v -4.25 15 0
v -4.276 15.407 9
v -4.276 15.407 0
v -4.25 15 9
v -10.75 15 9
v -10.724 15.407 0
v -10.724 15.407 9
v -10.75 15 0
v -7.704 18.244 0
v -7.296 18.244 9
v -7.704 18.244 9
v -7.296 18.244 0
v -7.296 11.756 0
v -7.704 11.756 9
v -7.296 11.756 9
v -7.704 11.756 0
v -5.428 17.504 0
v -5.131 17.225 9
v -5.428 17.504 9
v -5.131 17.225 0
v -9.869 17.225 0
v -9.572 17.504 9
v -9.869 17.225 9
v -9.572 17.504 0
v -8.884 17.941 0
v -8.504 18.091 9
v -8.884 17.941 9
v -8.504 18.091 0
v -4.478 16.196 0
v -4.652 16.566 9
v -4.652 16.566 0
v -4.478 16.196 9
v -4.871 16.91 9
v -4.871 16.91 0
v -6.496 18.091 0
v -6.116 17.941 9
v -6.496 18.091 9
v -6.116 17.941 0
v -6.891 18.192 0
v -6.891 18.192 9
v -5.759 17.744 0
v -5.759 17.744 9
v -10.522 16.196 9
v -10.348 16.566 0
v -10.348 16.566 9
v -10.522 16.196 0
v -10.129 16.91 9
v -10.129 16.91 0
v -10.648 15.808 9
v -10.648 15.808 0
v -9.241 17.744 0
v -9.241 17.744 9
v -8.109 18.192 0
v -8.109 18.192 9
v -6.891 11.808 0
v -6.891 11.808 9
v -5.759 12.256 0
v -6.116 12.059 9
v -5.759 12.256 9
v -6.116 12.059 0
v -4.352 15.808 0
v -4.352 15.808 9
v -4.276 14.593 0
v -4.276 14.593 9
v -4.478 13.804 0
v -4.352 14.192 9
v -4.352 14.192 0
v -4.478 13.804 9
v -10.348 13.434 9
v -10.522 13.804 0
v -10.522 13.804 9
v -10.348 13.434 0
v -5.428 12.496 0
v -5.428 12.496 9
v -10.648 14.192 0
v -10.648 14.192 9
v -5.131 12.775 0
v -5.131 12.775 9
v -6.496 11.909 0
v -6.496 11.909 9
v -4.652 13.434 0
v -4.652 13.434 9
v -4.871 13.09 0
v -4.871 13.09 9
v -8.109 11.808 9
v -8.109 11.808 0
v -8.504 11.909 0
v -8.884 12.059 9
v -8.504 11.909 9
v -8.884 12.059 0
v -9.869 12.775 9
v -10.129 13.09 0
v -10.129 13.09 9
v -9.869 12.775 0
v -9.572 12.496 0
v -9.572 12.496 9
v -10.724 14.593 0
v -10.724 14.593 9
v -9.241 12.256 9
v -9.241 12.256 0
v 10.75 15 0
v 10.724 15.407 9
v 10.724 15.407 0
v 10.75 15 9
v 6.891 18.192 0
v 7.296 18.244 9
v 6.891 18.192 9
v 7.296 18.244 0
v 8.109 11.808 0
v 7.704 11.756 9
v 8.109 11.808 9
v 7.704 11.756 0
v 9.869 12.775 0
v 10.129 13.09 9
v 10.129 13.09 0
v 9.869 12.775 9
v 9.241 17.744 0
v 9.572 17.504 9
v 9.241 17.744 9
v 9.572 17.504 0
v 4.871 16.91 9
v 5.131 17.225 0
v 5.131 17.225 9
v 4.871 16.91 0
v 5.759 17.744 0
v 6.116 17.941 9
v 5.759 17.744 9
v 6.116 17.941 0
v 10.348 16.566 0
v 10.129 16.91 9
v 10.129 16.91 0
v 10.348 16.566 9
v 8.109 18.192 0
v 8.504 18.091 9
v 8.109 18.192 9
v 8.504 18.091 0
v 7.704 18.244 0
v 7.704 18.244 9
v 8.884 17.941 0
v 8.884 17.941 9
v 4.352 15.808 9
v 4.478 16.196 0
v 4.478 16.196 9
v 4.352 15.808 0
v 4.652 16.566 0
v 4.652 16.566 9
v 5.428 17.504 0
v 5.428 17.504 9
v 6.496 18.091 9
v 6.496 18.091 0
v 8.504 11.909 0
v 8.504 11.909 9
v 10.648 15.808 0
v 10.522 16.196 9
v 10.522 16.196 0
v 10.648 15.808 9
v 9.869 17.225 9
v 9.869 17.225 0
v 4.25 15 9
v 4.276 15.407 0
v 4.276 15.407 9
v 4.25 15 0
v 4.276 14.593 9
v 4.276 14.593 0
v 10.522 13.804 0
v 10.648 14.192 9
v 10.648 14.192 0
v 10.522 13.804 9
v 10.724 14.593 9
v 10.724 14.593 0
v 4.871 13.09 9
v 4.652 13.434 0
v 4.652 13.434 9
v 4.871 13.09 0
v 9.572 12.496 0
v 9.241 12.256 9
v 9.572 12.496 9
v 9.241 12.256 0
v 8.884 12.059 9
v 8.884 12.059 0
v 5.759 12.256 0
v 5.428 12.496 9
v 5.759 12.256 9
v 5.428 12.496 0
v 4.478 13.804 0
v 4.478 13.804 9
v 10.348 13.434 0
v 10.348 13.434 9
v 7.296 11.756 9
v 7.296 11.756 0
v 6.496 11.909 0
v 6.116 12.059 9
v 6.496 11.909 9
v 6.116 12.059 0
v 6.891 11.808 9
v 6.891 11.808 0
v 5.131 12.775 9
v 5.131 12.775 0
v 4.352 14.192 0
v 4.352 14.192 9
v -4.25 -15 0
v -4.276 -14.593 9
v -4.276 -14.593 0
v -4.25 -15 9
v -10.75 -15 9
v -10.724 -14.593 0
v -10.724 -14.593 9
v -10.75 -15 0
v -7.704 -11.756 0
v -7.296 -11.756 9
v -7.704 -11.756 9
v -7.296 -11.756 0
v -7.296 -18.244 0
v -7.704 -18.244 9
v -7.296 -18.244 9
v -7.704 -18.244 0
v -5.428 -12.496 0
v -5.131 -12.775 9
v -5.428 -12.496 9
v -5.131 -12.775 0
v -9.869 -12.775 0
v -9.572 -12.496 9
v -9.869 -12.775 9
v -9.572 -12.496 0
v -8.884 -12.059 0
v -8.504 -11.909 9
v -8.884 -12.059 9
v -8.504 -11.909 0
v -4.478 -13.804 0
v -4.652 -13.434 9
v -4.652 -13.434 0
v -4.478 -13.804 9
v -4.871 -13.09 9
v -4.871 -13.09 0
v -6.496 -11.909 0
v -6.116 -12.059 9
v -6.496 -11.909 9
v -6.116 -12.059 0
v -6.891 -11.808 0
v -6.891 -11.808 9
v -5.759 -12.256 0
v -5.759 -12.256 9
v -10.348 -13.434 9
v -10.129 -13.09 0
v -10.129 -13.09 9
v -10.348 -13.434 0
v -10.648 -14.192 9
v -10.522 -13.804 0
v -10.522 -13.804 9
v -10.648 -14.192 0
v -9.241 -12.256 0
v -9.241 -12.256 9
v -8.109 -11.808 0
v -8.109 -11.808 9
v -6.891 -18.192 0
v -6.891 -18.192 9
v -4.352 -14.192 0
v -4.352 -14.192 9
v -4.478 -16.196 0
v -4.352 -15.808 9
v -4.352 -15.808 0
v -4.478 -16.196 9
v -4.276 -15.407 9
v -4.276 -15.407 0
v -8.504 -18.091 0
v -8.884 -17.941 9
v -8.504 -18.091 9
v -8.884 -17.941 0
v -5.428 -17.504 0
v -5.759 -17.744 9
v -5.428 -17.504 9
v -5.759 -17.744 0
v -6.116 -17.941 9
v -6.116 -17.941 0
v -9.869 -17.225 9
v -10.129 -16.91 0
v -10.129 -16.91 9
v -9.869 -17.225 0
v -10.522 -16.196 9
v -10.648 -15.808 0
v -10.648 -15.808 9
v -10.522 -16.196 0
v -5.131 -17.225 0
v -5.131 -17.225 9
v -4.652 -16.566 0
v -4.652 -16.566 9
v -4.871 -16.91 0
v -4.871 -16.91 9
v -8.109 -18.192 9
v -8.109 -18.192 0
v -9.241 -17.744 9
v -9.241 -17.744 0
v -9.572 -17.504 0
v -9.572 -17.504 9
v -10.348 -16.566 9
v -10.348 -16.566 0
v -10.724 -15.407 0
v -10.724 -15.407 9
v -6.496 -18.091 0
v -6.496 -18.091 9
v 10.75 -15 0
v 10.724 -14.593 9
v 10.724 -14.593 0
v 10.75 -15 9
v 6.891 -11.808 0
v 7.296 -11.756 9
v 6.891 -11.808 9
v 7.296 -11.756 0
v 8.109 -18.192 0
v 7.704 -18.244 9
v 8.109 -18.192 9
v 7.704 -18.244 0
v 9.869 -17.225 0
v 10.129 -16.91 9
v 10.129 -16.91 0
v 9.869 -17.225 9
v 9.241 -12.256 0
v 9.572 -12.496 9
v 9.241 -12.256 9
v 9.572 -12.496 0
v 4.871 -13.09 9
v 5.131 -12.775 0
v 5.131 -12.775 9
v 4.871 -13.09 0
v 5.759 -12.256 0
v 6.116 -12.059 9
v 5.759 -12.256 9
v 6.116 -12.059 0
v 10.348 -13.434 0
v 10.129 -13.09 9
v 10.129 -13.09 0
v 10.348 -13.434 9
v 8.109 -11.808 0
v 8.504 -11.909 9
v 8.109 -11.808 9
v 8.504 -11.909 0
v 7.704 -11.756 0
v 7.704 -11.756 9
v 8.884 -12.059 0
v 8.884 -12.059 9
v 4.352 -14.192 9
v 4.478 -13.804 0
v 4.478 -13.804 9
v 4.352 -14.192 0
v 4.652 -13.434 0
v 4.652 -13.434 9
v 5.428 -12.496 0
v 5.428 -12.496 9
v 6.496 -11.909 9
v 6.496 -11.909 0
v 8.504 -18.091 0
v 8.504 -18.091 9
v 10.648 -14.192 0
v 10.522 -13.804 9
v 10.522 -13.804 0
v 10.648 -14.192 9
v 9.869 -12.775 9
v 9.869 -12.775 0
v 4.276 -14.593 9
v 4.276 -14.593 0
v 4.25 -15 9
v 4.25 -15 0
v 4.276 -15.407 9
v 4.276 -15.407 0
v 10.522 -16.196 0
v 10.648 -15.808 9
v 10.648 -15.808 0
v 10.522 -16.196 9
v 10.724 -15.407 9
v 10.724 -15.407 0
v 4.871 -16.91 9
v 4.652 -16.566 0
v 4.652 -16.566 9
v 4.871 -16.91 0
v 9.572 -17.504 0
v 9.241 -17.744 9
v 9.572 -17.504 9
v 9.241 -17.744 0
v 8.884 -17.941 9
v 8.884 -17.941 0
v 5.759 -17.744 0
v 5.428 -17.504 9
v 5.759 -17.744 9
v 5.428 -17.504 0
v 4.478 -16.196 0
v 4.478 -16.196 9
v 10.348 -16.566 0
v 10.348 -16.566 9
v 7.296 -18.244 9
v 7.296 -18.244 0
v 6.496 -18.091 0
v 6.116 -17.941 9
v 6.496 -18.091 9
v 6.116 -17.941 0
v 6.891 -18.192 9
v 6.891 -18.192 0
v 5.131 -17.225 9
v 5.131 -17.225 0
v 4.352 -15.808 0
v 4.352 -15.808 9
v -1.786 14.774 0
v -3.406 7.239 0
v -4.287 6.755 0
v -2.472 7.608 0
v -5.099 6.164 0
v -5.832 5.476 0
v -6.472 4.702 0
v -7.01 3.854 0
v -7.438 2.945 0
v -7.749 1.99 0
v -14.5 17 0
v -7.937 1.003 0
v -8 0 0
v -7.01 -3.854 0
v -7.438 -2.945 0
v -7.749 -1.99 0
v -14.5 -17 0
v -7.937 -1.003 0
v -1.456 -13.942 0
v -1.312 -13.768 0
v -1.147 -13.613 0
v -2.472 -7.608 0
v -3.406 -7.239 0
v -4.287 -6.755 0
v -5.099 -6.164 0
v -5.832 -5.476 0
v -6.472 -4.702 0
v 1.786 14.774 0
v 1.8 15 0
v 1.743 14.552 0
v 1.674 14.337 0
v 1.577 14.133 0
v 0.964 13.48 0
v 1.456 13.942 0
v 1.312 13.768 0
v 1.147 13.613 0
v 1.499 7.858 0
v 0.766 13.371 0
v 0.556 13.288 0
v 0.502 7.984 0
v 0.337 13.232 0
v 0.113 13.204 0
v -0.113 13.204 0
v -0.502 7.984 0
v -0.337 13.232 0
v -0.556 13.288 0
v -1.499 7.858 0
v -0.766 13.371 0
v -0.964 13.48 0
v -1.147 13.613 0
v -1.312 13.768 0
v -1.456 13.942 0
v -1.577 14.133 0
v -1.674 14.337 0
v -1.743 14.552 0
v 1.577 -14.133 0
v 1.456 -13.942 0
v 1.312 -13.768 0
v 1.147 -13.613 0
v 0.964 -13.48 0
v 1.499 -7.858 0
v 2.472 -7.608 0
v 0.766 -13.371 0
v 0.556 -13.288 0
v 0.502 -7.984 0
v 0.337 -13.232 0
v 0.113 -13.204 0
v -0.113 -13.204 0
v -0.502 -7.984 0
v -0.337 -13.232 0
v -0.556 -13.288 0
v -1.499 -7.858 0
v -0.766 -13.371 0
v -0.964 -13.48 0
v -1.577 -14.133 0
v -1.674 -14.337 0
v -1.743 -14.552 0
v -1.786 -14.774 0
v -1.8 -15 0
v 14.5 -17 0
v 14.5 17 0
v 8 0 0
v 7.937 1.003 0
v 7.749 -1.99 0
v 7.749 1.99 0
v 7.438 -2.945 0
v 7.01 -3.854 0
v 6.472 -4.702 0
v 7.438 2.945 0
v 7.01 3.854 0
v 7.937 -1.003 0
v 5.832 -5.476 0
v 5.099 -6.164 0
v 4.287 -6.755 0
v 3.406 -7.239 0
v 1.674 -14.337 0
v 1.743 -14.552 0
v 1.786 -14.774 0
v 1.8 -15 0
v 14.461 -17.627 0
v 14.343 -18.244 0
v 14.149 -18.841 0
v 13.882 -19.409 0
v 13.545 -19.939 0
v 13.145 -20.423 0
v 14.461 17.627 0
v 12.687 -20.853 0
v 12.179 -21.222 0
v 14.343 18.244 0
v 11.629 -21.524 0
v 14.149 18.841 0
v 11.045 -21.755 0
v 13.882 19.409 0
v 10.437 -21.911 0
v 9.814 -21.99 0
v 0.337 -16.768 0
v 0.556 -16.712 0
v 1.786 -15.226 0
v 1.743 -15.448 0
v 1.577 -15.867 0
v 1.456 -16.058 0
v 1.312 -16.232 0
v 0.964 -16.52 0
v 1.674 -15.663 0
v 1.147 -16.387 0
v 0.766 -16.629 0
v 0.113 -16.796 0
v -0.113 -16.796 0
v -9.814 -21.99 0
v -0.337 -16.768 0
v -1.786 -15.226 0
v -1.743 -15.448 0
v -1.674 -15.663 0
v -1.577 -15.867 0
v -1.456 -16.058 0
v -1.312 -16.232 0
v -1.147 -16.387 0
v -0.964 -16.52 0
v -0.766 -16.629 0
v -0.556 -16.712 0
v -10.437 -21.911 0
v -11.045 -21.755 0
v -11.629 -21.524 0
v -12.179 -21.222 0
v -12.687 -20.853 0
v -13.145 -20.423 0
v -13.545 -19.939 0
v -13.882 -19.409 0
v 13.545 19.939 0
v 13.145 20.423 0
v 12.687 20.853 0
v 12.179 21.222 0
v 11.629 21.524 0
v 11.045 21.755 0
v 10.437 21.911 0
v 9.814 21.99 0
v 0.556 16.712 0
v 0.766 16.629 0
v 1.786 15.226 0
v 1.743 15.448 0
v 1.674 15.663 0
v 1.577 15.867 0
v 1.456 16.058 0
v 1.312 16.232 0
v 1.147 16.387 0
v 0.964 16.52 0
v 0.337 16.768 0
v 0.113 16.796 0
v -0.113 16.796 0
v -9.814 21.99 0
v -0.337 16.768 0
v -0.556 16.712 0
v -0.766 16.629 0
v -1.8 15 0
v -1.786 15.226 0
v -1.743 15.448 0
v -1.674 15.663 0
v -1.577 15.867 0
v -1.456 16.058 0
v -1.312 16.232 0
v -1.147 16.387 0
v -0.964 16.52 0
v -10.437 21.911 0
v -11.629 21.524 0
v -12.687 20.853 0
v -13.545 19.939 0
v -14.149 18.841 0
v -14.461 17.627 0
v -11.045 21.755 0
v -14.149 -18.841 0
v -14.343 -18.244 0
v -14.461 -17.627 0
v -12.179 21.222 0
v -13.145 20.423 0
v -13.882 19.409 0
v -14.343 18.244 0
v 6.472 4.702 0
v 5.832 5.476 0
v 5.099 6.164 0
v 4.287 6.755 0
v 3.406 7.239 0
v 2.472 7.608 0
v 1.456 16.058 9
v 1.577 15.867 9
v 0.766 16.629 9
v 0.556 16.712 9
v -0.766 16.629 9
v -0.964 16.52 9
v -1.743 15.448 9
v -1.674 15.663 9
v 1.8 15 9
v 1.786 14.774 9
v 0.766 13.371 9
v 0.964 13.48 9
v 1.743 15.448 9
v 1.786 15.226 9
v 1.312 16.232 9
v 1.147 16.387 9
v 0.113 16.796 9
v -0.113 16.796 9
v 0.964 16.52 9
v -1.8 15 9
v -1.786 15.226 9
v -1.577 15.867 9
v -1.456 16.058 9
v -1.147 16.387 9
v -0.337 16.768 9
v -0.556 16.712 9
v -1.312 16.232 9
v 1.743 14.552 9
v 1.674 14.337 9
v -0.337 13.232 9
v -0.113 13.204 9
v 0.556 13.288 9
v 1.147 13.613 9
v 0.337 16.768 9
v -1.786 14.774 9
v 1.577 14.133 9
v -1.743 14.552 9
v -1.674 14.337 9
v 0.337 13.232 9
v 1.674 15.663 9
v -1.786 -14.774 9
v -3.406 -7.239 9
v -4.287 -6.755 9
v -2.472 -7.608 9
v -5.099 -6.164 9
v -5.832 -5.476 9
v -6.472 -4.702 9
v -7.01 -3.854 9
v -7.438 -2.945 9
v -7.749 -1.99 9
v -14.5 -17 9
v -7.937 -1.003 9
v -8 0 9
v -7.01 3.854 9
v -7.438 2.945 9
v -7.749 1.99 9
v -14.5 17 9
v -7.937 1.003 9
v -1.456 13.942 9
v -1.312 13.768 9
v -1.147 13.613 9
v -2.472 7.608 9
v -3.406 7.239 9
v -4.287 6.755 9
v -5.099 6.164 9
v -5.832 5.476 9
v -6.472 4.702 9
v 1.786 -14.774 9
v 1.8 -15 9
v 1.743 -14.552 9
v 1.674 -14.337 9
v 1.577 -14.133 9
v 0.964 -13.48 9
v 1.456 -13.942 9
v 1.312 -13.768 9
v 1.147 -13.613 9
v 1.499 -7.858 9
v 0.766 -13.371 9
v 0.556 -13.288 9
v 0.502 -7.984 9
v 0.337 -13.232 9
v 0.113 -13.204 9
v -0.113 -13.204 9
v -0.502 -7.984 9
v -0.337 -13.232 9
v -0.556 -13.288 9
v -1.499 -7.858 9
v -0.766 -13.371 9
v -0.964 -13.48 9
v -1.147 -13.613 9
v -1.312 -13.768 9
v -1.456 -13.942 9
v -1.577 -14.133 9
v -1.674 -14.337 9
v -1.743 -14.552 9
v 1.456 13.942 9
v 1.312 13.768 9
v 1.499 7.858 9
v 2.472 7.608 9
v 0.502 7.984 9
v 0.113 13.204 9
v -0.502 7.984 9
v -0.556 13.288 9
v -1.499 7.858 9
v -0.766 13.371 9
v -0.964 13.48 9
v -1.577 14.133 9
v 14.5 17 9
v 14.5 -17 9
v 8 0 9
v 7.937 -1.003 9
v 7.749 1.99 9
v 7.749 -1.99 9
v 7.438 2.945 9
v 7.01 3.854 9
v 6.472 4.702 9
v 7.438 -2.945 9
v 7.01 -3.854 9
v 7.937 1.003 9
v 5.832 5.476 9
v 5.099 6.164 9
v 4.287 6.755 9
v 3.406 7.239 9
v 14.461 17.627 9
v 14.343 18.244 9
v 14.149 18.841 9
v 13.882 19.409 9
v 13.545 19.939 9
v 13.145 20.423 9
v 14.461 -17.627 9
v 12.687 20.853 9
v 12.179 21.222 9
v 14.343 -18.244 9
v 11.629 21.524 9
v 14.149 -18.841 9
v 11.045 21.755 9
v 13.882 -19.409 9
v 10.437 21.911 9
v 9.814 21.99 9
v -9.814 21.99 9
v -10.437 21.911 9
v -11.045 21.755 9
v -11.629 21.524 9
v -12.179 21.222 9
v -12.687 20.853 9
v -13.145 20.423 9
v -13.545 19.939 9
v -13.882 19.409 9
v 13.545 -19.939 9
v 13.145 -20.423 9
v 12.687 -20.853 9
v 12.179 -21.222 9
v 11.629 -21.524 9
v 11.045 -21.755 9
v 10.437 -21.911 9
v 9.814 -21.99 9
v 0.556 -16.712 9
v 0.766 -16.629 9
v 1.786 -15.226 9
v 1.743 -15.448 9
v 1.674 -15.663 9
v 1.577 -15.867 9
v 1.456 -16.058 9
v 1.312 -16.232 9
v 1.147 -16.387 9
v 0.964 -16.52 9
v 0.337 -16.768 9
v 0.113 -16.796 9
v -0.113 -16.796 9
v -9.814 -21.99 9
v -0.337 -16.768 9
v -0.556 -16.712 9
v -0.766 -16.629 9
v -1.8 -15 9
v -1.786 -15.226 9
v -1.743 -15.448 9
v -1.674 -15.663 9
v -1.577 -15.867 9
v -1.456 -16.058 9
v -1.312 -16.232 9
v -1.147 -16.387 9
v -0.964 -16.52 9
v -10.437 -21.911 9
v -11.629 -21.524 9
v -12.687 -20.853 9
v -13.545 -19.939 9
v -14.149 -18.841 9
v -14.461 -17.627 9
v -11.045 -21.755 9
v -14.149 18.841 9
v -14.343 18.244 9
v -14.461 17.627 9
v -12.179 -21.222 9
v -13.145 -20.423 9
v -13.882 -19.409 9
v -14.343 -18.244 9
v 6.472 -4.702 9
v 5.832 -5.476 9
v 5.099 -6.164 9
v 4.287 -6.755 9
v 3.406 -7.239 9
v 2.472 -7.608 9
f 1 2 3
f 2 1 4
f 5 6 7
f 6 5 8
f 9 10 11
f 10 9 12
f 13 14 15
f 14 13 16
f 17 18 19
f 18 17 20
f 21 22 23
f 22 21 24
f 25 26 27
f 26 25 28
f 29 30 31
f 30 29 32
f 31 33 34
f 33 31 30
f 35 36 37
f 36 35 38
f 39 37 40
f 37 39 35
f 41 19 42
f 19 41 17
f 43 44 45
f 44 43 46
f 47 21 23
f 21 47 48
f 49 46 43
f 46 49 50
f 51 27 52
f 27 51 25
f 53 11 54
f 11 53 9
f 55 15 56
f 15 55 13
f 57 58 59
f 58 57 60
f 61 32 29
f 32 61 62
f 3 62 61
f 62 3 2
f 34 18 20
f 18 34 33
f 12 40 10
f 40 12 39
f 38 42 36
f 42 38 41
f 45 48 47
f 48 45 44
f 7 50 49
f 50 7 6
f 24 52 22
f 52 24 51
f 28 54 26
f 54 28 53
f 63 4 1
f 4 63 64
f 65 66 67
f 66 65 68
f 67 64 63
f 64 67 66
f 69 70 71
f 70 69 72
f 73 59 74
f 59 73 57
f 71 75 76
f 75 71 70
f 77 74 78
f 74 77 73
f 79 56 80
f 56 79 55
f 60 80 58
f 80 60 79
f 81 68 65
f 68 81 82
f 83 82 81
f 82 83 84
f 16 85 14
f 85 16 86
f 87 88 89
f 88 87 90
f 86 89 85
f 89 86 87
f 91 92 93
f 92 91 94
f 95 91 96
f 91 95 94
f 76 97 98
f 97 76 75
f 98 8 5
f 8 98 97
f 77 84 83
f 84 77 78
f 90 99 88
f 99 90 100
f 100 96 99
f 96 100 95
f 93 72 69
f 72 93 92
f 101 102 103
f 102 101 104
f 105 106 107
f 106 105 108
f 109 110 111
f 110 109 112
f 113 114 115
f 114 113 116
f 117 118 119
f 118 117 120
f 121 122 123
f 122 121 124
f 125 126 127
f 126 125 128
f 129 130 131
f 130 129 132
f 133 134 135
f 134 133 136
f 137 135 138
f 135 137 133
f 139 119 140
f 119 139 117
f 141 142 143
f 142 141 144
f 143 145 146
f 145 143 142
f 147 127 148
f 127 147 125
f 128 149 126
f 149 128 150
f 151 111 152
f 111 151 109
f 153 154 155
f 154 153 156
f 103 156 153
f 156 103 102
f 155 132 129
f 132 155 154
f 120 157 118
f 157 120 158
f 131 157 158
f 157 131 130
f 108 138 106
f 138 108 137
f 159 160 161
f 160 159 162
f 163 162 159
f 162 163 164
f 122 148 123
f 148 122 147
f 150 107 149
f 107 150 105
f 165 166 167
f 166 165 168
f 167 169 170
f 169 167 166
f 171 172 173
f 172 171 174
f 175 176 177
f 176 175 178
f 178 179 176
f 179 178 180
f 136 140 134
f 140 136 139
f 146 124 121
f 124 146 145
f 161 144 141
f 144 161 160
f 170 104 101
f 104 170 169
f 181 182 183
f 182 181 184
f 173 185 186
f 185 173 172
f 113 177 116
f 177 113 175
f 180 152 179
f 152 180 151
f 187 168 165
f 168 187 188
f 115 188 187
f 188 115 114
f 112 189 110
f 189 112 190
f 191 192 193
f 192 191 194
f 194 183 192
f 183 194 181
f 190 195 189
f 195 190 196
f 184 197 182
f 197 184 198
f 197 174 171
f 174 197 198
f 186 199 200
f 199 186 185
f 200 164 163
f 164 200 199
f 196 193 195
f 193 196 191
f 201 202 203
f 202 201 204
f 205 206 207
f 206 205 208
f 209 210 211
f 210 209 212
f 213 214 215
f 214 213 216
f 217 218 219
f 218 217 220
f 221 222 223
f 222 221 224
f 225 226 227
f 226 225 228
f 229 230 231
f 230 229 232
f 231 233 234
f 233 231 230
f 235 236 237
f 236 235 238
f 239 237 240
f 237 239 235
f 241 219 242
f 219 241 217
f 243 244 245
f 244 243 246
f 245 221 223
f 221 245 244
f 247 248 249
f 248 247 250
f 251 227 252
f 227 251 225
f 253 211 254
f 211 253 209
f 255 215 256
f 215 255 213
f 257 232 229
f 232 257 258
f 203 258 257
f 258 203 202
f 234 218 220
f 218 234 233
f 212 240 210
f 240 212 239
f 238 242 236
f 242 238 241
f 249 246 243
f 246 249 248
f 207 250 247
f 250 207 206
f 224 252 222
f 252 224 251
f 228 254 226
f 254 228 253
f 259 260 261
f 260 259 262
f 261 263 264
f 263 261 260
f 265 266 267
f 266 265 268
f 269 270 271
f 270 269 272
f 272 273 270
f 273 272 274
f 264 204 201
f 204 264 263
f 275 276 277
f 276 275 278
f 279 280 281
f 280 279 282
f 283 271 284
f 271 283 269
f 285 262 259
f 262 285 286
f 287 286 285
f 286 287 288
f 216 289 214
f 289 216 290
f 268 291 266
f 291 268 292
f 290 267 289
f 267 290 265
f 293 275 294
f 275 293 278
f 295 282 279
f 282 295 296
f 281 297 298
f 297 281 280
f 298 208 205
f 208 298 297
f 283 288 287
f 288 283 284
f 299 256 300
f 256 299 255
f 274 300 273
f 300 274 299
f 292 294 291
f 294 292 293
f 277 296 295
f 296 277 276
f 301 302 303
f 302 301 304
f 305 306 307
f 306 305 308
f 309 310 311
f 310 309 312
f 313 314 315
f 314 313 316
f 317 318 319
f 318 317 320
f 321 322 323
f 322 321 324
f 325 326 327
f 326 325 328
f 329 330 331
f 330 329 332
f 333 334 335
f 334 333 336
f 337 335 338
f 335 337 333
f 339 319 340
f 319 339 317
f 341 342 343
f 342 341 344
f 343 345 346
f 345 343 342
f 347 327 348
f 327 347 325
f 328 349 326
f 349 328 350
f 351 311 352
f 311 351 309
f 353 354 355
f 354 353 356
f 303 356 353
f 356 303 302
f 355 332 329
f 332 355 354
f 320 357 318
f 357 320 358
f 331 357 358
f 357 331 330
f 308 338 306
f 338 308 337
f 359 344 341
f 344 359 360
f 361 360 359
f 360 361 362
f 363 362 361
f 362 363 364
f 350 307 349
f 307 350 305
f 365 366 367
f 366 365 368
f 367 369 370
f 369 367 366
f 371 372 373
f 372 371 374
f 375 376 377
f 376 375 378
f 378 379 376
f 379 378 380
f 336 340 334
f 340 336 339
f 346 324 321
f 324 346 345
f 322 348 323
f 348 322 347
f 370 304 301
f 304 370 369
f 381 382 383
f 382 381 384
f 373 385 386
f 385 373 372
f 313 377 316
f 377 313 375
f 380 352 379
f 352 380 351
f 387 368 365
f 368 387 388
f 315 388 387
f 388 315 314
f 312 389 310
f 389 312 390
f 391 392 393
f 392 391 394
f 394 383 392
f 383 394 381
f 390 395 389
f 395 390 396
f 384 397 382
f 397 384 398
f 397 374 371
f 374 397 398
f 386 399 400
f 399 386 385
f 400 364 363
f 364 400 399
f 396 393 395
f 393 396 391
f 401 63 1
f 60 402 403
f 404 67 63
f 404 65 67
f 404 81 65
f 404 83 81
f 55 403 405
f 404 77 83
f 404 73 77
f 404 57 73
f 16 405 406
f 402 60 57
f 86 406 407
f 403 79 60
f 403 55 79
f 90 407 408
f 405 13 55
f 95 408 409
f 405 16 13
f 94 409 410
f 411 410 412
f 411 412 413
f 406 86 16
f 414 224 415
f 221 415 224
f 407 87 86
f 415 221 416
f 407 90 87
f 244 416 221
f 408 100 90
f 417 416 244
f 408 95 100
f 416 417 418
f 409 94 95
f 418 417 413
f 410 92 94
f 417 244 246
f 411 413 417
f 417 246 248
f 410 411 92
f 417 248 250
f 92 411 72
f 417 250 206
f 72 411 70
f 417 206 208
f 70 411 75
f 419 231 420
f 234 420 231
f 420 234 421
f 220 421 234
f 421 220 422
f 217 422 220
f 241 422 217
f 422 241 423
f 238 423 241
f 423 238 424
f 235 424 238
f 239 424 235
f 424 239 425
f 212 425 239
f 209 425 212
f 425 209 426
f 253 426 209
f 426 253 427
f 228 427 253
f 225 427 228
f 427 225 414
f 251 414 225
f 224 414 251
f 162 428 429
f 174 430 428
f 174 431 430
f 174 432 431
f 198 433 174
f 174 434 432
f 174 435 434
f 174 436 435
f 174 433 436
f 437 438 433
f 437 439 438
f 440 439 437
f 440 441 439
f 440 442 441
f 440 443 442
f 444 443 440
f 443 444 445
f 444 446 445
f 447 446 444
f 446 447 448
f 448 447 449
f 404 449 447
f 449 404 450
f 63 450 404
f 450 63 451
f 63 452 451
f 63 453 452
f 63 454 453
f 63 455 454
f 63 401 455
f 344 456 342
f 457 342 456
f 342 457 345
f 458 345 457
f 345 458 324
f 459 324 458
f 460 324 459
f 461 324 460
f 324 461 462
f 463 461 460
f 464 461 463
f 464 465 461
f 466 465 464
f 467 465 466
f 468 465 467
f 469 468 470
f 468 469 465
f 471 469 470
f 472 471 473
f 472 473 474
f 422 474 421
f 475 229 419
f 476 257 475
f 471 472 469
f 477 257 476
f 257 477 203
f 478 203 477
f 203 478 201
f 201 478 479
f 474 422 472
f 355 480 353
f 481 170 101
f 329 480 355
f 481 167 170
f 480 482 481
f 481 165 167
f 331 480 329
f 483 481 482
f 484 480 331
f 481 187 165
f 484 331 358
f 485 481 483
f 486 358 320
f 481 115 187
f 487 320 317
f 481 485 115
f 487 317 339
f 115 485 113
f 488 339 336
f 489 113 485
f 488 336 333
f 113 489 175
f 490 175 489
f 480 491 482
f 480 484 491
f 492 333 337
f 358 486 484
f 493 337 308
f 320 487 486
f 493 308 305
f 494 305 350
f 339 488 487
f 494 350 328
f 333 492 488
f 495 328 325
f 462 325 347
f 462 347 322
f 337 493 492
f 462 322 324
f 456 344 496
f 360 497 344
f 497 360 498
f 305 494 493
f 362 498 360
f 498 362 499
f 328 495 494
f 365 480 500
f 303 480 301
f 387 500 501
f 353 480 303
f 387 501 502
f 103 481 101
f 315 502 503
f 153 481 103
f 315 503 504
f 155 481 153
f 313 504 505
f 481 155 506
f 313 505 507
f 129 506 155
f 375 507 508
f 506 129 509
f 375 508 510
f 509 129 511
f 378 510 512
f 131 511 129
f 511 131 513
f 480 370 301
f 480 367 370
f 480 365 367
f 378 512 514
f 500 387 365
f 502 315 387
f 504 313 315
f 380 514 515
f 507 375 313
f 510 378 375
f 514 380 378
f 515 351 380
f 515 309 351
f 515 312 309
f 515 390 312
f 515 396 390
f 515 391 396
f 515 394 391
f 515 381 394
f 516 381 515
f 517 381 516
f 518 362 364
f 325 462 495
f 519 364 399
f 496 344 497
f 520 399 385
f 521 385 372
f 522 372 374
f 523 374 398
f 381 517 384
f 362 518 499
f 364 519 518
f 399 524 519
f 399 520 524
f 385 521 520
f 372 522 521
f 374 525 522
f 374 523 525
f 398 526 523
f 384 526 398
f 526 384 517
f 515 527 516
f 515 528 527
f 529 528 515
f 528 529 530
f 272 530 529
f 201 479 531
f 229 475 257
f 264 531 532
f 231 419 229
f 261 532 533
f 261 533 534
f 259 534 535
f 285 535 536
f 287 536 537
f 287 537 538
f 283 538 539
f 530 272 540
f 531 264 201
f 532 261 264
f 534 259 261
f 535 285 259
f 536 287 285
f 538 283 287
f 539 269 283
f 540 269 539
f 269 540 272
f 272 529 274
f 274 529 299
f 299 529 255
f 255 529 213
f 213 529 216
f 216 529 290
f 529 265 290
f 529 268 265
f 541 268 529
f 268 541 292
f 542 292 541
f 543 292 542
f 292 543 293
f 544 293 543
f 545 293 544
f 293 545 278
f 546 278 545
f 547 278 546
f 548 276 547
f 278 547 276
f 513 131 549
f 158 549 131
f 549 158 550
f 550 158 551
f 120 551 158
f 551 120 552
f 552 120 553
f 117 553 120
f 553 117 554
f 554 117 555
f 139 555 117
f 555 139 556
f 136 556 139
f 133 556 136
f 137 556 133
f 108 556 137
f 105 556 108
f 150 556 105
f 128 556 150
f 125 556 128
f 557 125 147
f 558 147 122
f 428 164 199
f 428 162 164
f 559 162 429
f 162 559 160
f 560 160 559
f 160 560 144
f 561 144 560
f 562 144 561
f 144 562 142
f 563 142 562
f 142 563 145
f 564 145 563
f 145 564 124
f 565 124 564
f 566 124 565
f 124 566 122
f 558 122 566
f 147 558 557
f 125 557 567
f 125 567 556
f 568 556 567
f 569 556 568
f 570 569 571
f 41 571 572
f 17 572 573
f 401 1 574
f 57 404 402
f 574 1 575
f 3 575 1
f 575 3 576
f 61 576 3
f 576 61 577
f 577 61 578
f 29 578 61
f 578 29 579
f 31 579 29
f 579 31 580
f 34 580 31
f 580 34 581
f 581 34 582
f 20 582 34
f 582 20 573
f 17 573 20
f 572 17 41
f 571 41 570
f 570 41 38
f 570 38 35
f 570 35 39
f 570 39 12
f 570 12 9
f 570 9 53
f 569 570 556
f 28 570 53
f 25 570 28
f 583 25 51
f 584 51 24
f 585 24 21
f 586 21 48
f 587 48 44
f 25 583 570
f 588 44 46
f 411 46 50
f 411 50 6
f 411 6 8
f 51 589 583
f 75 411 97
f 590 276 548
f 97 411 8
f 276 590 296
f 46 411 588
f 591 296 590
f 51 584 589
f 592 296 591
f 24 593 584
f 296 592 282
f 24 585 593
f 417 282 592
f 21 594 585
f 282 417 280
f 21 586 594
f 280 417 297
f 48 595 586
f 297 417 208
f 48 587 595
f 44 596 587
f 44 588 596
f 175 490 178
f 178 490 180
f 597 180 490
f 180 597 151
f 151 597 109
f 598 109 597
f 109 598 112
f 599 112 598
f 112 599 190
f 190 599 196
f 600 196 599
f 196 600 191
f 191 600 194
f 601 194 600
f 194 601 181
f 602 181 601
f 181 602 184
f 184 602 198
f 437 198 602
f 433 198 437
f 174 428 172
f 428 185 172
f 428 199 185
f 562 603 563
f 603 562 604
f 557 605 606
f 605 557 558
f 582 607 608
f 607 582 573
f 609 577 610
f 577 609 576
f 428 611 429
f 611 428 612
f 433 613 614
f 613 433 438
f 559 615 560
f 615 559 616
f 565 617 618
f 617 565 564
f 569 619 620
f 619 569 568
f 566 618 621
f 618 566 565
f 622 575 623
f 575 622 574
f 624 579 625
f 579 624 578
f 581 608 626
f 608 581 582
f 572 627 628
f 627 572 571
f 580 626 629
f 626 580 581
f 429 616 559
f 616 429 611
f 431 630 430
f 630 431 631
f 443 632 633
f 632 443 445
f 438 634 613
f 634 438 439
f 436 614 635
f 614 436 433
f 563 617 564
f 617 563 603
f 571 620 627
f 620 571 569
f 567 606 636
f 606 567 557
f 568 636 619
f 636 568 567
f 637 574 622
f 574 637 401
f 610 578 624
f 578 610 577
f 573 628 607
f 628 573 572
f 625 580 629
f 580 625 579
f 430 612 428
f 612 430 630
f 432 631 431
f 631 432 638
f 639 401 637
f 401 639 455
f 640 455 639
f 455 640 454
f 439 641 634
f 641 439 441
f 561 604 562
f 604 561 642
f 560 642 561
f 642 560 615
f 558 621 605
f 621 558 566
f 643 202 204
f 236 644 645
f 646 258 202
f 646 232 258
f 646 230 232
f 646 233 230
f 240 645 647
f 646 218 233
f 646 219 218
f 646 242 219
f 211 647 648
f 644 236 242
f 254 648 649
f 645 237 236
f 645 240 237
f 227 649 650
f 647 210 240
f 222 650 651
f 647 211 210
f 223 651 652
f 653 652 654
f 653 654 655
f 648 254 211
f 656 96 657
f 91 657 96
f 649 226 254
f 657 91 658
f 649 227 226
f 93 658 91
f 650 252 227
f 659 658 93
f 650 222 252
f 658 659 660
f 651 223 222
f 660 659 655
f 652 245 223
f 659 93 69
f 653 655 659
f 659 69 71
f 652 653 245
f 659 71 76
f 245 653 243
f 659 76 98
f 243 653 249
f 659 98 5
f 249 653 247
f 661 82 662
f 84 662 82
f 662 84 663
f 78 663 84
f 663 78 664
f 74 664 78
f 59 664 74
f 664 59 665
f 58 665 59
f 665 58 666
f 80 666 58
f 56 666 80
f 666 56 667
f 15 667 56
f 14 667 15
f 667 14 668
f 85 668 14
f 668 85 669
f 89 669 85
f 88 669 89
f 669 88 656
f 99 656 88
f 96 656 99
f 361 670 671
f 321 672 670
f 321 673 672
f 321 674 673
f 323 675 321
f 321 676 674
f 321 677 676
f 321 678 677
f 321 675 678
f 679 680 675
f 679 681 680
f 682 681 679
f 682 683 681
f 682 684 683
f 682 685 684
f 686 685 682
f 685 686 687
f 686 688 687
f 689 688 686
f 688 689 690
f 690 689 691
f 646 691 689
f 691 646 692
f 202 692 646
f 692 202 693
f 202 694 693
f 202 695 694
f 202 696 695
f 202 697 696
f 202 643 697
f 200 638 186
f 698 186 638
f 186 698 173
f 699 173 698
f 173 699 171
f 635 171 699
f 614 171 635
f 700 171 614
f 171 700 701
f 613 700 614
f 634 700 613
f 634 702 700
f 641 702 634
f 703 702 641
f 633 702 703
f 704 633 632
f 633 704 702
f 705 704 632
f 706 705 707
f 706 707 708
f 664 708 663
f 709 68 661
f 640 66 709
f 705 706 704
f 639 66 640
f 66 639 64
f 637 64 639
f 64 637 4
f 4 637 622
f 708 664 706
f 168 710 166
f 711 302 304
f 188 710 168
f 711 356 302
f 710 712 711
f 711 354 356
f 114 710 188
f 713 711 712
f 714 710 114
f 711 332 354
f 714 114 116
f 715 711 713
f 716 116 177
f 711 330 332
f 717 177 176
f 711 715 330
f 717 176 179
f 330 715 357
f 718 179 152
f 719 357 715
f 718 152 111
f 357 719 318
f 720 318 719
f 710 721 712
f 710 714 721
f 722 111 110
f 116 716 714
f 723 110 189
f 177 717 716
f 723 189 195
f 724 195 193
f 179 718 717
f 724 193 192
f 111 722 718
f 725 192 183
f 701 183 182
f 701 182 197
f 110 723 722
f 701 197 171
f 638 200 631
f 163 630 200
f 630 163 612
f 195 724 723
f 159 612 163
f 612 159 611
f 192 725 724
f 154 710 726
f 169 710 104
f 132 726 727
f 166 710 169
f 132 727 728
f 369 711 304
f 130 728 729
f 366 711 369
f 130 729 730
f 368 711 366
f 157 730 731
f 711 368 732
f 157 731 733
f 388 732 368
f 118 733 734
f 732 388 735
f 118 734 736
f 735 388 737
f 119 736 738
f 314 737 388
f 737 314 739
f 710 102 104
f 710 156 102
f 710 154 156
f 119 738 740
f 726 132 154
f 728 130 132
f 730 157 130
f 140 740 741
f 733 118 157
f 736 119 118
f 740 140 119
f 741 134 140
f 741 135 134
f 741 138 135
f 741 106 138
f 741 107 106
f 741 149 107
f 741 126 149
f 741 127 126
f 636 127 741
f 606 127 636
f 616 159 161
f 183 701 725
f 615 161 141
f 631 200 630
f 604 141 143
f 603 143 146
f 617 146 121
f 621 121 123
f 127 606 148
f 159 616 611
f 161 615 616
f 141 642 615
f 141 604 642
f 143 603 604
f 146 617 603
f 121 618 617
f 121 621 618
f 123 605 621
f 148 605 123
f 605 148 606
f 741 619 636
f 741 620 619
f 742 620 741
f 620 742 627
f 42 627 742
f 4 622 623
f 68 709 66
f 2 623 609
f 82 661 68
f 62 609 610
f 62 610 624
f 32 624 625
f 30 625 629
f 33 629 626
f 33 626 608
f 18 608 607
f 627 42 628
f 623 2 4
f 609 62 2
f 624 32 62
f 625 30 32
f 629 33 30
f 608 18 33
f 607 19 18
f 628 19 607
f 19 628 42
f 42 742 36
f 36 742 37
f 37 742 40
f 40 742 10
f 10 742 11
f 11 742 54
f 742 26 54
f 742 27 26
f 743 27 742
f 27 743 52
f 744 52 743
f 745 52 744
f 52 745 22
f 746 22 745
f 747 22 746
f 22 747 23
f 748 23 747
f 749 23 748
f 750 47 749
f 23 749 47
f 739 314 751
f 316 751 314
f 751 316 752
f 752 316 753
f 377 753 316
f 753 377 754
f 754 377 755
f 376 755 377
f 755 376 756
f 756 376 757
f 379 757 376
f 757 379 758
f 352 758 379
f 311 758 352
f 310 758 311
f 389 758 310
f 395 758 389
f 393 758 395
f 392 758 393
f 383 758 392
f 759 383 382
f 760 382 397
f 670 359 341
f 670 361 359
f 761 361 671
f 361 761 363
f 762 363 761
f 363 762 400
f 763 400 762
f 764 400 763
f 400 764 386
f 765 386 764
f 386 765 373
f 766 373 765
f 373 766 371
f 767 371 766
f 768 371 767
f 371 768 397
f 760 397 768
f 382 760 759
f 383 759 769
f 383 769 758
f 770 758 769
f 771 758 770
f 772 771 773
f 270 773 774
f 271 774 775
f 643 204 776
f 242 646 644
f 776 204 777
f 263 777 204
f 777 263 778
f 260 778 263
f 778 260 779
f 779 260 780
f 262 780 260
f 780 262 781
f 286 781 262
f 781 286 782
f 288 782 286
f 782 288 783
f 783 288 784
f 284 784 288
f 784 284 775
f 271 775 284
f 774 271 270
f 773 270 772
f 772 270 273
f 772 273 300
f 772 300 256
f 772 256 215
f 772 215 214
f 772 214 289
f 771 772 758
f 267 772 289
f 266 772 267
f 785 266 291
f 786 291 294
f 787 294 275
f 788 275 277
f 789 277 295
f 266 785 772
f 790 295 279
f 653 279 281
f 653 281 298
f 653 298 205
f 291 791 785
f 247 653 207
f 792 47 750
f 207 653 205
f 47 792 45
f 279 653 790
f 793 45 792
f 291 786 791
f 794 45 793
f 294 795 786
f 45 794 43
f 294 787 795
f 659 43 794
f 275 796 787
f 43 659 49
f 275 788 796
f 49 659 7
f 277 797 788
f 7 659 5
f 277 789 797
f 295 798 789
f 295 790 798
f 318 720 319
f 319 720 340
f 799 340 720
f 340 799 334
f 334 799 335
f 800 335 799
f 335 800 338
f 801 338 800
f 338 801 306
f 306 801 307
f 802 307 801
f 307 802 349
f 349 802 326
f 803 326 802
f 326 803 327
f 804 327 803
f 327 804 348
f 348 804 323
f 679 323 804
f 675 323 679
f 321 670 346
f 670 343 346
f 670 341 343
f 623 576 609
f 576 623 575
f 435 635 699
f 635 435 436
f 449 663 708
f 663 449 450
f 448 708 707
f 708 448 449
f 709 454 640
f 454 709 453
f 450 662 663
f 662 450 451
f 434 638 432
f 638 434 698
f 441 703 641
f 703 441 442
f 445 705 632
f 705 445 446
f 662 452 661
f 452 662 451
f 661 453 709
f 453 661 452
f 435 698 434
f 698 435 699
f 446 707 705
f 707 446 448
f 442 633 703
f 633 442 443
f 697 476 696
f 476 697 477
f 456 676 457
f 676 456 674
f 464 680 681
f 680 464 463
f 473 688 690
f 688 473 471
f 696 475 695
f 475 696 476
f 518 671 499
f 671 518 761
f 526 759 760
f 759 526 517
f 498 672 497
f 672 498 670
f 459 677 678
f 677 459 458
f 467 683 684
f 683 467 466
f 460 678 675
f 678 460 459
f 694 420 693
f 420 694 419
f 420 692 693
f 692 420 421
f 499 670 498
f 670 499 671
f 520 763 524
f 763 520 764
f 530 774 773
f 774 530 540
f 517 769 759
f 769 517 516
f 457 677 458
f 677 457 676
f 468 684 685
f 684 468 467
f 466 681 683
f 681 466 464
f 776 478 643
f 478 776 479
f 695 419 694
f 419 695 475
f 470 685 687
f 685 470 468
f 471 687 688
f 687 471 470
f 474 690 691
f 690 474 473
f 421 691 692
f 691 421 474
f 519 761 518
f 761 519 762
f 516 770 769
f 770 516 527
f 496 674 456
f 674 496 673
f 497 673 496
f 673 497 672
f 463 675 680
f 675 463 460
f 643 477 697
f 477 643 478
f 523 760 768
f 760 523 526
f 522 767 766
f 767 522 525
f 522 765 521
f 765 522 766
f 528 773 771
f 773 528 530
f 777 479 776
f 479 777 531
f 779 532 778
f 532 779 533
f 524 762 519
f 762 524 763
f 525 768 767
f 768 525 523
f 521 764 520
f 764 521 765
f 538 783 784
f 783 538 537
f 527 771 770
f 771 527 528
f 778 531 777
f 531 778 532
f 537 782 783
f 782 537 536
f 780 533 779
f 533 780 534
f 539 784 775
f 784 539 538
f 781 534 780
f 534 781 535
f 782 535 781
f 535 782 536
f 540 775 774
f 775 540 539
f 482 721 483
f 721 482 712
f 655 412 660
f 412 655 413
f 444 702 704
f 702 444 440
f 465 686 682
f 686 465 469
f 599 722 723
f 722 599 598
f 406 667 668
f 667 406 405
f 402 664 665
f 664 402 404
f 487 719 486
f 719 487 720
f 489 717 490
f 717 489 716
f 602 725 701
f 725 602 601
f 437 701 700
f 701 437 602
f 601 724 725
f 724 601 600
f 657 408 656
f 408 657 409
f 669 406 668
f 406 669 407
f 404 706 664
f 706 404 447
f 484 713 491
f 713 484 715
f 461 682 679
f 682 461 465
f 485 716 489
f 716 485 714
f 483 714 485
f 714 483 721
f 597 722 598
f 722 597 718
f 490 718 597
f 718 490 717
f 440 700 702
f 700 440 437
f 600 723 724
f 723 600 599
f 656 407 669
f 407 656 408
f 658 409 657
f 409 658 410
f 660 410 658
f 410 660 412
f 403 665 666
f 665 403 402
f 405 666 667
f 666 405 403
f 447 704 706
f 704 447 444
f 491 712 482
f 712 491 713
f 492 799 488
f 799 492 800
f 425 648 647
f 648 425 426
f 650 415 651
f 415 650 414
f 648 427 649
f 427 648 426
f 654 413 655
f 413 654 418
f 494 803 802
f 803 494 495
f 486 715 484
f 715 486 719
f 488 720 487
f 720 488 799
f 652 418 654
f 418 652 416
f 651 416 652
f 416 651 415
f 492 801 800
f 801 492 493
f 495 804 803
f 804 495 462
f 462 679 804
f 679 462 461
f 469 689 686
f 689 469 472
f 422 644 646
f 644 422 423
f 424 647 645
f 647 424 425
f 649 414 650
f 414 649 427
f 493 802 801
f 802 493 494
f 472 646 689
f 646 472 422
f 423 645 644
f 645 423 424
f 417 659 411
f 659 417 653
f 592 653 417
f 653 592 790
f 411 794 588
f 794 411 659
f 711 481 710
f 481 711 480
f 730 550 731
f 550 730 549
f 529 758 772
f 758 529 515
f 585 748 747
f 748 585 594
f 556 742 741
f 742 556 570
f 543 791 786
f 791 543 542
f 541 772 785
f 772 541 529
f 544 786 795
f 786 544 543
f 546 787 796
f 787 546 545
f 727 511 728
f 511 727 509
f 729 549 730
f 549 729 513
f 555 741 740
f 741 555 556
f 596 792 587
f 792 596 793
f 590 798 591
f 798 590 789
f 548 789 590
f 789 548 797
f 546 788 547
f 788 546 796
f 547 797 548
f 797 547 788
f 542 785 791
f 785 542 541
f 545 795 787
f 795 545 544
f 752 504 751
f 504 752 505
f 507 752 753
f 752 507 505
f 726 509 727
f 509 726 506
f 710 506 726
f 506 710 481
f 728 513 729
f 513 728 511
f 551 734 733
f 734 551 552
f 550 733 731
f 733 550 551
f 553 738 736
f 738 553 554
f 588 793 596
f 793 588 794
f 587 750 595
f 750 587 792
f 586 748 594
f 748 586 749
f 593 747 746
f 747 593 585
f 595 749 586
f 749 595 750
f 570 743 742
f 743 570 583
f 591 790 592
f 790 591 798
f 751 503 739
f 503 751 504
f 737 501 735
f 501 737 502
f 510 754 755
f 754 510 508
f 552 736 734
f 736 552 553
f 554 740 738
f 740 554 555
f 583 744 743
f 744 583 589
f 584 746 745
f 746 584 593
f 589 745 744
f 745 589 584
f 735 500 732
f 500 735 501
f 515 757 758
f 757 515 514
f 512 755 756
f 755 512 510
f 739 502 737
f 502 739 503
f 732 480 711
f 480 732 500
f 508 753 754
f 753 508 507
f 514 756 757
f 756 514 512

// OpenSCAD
$fn = 50;


difference() {
	union() {
		hull() {
			translate(v = [-9.5000000000, 17.0000000000, 0]) {
				cylinder(h = 9, r = 5);
			}
			translate(v = [9.5000000000, 17.0000000000, 0]) {
				cylinder(h = 9, r = 5);
			}
			translate(v = [-9.5000000000, -17.0000000000, 0]) {
				cylinder(h = 9, r = 5);
			}
			translate(v = [9.5000000000, -17.0000000000, 0]) {
				cylinder(h = 9, r = 5);
			}
		}
	}
	union() {
		#translate(v = [-7.5000000000, 15.0000000000, 0]) {
			cylinder(h = 9, r = 3.2500000000);
		}
		#translate(v = [7.5000000000, 15.0000000000, 0]) {
			cylinder(h = 9, r = 3.2500000000);
		}
		#translate(v = [-7.5000000000, -15.0000000000, 0]) {
			cylinder(h = 9, r = 3.2500000000);
		}
		#translate(v = [7.5000000000, -15.0000000000, 0]) {
			cylinder(h = 9, r = 3.2500000000);
		}
		#translate(v = [-7.5000000000, -15.0000000000, -100.0000000000]) {
			cylinder(h = 200, r = 3.2500000000);
		}
		#translate(v = [-7.5000000000, 15.0000000000, -100.0000000000]) {
			cylinder(h = 200, r = 3.2500000000);
		}
		#translate(v = [7.5000000000, -15.0000000000, -100.0000000000]) {
			cylinder(h = 200, r = 3.2500000000);
		}
		#translate(v = [7.5000000000, 15.0000000000, -100.0000000000]) {
			cylinder(h = 200, r = 3.2500000000);
		}
		#translate(v = [-7.5000000000, 15.0000000000, 0]) {
			cylinder(h = 9, r = 1.8000000000);
		}
		#translate(v = [0.0000000000, 15.0000000000, 0]) {
			cylinder(h = 9, r = 1.8000000000);
		}
		#translate(v = [7.5000000000, 15.0000000000, 0]) {
			cylinder(h = 9, r = 1.8000000000);
		}
		#translate(v = [-7.5000000000, -15.0000000000, 0]) {
			cylinder(h = 9, r = 1.8000000000);
		}
		#translate(v = [0.0000000000, -15.0000000000, 0]) {
			cylinder(h = 9, r = 1.8000000000);
		}
		#translate(v = [7.5000000000, -15.0000000000, 0]) {
			cylinder(h = 9, r = 1.8000000000);
		}
		#translate(v = [-7.5000000000, 15.0000000000, 0]) {
			cylinder(h = 9, r = 1.8000000000);
		}
		#translate(v = [0.0000000000, 15.0000000000, 0]) {
			cylinder(h = 9, r = 1.8000000000);
		}
		#translate(v = [7.5000000000, 15.0000000000, 0]) {
			cylinder(h = 9, r = 1.8000000000);
		}
		#translate(v = [-7.5000000000, -15.0000000000, 0]) {
			cylinder(h = 9, r = 1.8000000000);
		}
		#translate(v = [0.0000000000, -15.0000000000, 0]) {
			cylinder(h = 9, r = 1.8000000000);
		}
		#translate(v = [7.5000000000, -15.0000000000, 0]) {
			cylinder(h = 9, r = 1.8000000000);
		}
		#translate(v = [-7.5000000000, 15.0000000000, 0]) {
			cylinder(h = 9, r = 1.8000000000);
		}
		#translate(v = [0.0000000000, 15.0000000000, 0]) {
			cylinder(h = 9, r = 1.8000000000);
		}
		#translate(v = [7.5000000000, 15.0000000000, 0]) {
			cylinder(h = 9, r = 1.8000000000);
		}
		#translate(v = [-7.5000000000, -15.0000000000, 0]) {
			cylinder(h = 9, r = 1.8000000000);
		}
		#translate(v = [0.0000000000, -15.0000000000, 0]) {
			cylinder(h = 9, r = 1.8000000000);
		}
		#translate(v = [7.5000000000, -15.0000000000, 0]) {
			cylinder(h = 9, r = 1.8000000000);
		}
		#cylinder(h = 9, r = 8.0000000000);
	}
}
